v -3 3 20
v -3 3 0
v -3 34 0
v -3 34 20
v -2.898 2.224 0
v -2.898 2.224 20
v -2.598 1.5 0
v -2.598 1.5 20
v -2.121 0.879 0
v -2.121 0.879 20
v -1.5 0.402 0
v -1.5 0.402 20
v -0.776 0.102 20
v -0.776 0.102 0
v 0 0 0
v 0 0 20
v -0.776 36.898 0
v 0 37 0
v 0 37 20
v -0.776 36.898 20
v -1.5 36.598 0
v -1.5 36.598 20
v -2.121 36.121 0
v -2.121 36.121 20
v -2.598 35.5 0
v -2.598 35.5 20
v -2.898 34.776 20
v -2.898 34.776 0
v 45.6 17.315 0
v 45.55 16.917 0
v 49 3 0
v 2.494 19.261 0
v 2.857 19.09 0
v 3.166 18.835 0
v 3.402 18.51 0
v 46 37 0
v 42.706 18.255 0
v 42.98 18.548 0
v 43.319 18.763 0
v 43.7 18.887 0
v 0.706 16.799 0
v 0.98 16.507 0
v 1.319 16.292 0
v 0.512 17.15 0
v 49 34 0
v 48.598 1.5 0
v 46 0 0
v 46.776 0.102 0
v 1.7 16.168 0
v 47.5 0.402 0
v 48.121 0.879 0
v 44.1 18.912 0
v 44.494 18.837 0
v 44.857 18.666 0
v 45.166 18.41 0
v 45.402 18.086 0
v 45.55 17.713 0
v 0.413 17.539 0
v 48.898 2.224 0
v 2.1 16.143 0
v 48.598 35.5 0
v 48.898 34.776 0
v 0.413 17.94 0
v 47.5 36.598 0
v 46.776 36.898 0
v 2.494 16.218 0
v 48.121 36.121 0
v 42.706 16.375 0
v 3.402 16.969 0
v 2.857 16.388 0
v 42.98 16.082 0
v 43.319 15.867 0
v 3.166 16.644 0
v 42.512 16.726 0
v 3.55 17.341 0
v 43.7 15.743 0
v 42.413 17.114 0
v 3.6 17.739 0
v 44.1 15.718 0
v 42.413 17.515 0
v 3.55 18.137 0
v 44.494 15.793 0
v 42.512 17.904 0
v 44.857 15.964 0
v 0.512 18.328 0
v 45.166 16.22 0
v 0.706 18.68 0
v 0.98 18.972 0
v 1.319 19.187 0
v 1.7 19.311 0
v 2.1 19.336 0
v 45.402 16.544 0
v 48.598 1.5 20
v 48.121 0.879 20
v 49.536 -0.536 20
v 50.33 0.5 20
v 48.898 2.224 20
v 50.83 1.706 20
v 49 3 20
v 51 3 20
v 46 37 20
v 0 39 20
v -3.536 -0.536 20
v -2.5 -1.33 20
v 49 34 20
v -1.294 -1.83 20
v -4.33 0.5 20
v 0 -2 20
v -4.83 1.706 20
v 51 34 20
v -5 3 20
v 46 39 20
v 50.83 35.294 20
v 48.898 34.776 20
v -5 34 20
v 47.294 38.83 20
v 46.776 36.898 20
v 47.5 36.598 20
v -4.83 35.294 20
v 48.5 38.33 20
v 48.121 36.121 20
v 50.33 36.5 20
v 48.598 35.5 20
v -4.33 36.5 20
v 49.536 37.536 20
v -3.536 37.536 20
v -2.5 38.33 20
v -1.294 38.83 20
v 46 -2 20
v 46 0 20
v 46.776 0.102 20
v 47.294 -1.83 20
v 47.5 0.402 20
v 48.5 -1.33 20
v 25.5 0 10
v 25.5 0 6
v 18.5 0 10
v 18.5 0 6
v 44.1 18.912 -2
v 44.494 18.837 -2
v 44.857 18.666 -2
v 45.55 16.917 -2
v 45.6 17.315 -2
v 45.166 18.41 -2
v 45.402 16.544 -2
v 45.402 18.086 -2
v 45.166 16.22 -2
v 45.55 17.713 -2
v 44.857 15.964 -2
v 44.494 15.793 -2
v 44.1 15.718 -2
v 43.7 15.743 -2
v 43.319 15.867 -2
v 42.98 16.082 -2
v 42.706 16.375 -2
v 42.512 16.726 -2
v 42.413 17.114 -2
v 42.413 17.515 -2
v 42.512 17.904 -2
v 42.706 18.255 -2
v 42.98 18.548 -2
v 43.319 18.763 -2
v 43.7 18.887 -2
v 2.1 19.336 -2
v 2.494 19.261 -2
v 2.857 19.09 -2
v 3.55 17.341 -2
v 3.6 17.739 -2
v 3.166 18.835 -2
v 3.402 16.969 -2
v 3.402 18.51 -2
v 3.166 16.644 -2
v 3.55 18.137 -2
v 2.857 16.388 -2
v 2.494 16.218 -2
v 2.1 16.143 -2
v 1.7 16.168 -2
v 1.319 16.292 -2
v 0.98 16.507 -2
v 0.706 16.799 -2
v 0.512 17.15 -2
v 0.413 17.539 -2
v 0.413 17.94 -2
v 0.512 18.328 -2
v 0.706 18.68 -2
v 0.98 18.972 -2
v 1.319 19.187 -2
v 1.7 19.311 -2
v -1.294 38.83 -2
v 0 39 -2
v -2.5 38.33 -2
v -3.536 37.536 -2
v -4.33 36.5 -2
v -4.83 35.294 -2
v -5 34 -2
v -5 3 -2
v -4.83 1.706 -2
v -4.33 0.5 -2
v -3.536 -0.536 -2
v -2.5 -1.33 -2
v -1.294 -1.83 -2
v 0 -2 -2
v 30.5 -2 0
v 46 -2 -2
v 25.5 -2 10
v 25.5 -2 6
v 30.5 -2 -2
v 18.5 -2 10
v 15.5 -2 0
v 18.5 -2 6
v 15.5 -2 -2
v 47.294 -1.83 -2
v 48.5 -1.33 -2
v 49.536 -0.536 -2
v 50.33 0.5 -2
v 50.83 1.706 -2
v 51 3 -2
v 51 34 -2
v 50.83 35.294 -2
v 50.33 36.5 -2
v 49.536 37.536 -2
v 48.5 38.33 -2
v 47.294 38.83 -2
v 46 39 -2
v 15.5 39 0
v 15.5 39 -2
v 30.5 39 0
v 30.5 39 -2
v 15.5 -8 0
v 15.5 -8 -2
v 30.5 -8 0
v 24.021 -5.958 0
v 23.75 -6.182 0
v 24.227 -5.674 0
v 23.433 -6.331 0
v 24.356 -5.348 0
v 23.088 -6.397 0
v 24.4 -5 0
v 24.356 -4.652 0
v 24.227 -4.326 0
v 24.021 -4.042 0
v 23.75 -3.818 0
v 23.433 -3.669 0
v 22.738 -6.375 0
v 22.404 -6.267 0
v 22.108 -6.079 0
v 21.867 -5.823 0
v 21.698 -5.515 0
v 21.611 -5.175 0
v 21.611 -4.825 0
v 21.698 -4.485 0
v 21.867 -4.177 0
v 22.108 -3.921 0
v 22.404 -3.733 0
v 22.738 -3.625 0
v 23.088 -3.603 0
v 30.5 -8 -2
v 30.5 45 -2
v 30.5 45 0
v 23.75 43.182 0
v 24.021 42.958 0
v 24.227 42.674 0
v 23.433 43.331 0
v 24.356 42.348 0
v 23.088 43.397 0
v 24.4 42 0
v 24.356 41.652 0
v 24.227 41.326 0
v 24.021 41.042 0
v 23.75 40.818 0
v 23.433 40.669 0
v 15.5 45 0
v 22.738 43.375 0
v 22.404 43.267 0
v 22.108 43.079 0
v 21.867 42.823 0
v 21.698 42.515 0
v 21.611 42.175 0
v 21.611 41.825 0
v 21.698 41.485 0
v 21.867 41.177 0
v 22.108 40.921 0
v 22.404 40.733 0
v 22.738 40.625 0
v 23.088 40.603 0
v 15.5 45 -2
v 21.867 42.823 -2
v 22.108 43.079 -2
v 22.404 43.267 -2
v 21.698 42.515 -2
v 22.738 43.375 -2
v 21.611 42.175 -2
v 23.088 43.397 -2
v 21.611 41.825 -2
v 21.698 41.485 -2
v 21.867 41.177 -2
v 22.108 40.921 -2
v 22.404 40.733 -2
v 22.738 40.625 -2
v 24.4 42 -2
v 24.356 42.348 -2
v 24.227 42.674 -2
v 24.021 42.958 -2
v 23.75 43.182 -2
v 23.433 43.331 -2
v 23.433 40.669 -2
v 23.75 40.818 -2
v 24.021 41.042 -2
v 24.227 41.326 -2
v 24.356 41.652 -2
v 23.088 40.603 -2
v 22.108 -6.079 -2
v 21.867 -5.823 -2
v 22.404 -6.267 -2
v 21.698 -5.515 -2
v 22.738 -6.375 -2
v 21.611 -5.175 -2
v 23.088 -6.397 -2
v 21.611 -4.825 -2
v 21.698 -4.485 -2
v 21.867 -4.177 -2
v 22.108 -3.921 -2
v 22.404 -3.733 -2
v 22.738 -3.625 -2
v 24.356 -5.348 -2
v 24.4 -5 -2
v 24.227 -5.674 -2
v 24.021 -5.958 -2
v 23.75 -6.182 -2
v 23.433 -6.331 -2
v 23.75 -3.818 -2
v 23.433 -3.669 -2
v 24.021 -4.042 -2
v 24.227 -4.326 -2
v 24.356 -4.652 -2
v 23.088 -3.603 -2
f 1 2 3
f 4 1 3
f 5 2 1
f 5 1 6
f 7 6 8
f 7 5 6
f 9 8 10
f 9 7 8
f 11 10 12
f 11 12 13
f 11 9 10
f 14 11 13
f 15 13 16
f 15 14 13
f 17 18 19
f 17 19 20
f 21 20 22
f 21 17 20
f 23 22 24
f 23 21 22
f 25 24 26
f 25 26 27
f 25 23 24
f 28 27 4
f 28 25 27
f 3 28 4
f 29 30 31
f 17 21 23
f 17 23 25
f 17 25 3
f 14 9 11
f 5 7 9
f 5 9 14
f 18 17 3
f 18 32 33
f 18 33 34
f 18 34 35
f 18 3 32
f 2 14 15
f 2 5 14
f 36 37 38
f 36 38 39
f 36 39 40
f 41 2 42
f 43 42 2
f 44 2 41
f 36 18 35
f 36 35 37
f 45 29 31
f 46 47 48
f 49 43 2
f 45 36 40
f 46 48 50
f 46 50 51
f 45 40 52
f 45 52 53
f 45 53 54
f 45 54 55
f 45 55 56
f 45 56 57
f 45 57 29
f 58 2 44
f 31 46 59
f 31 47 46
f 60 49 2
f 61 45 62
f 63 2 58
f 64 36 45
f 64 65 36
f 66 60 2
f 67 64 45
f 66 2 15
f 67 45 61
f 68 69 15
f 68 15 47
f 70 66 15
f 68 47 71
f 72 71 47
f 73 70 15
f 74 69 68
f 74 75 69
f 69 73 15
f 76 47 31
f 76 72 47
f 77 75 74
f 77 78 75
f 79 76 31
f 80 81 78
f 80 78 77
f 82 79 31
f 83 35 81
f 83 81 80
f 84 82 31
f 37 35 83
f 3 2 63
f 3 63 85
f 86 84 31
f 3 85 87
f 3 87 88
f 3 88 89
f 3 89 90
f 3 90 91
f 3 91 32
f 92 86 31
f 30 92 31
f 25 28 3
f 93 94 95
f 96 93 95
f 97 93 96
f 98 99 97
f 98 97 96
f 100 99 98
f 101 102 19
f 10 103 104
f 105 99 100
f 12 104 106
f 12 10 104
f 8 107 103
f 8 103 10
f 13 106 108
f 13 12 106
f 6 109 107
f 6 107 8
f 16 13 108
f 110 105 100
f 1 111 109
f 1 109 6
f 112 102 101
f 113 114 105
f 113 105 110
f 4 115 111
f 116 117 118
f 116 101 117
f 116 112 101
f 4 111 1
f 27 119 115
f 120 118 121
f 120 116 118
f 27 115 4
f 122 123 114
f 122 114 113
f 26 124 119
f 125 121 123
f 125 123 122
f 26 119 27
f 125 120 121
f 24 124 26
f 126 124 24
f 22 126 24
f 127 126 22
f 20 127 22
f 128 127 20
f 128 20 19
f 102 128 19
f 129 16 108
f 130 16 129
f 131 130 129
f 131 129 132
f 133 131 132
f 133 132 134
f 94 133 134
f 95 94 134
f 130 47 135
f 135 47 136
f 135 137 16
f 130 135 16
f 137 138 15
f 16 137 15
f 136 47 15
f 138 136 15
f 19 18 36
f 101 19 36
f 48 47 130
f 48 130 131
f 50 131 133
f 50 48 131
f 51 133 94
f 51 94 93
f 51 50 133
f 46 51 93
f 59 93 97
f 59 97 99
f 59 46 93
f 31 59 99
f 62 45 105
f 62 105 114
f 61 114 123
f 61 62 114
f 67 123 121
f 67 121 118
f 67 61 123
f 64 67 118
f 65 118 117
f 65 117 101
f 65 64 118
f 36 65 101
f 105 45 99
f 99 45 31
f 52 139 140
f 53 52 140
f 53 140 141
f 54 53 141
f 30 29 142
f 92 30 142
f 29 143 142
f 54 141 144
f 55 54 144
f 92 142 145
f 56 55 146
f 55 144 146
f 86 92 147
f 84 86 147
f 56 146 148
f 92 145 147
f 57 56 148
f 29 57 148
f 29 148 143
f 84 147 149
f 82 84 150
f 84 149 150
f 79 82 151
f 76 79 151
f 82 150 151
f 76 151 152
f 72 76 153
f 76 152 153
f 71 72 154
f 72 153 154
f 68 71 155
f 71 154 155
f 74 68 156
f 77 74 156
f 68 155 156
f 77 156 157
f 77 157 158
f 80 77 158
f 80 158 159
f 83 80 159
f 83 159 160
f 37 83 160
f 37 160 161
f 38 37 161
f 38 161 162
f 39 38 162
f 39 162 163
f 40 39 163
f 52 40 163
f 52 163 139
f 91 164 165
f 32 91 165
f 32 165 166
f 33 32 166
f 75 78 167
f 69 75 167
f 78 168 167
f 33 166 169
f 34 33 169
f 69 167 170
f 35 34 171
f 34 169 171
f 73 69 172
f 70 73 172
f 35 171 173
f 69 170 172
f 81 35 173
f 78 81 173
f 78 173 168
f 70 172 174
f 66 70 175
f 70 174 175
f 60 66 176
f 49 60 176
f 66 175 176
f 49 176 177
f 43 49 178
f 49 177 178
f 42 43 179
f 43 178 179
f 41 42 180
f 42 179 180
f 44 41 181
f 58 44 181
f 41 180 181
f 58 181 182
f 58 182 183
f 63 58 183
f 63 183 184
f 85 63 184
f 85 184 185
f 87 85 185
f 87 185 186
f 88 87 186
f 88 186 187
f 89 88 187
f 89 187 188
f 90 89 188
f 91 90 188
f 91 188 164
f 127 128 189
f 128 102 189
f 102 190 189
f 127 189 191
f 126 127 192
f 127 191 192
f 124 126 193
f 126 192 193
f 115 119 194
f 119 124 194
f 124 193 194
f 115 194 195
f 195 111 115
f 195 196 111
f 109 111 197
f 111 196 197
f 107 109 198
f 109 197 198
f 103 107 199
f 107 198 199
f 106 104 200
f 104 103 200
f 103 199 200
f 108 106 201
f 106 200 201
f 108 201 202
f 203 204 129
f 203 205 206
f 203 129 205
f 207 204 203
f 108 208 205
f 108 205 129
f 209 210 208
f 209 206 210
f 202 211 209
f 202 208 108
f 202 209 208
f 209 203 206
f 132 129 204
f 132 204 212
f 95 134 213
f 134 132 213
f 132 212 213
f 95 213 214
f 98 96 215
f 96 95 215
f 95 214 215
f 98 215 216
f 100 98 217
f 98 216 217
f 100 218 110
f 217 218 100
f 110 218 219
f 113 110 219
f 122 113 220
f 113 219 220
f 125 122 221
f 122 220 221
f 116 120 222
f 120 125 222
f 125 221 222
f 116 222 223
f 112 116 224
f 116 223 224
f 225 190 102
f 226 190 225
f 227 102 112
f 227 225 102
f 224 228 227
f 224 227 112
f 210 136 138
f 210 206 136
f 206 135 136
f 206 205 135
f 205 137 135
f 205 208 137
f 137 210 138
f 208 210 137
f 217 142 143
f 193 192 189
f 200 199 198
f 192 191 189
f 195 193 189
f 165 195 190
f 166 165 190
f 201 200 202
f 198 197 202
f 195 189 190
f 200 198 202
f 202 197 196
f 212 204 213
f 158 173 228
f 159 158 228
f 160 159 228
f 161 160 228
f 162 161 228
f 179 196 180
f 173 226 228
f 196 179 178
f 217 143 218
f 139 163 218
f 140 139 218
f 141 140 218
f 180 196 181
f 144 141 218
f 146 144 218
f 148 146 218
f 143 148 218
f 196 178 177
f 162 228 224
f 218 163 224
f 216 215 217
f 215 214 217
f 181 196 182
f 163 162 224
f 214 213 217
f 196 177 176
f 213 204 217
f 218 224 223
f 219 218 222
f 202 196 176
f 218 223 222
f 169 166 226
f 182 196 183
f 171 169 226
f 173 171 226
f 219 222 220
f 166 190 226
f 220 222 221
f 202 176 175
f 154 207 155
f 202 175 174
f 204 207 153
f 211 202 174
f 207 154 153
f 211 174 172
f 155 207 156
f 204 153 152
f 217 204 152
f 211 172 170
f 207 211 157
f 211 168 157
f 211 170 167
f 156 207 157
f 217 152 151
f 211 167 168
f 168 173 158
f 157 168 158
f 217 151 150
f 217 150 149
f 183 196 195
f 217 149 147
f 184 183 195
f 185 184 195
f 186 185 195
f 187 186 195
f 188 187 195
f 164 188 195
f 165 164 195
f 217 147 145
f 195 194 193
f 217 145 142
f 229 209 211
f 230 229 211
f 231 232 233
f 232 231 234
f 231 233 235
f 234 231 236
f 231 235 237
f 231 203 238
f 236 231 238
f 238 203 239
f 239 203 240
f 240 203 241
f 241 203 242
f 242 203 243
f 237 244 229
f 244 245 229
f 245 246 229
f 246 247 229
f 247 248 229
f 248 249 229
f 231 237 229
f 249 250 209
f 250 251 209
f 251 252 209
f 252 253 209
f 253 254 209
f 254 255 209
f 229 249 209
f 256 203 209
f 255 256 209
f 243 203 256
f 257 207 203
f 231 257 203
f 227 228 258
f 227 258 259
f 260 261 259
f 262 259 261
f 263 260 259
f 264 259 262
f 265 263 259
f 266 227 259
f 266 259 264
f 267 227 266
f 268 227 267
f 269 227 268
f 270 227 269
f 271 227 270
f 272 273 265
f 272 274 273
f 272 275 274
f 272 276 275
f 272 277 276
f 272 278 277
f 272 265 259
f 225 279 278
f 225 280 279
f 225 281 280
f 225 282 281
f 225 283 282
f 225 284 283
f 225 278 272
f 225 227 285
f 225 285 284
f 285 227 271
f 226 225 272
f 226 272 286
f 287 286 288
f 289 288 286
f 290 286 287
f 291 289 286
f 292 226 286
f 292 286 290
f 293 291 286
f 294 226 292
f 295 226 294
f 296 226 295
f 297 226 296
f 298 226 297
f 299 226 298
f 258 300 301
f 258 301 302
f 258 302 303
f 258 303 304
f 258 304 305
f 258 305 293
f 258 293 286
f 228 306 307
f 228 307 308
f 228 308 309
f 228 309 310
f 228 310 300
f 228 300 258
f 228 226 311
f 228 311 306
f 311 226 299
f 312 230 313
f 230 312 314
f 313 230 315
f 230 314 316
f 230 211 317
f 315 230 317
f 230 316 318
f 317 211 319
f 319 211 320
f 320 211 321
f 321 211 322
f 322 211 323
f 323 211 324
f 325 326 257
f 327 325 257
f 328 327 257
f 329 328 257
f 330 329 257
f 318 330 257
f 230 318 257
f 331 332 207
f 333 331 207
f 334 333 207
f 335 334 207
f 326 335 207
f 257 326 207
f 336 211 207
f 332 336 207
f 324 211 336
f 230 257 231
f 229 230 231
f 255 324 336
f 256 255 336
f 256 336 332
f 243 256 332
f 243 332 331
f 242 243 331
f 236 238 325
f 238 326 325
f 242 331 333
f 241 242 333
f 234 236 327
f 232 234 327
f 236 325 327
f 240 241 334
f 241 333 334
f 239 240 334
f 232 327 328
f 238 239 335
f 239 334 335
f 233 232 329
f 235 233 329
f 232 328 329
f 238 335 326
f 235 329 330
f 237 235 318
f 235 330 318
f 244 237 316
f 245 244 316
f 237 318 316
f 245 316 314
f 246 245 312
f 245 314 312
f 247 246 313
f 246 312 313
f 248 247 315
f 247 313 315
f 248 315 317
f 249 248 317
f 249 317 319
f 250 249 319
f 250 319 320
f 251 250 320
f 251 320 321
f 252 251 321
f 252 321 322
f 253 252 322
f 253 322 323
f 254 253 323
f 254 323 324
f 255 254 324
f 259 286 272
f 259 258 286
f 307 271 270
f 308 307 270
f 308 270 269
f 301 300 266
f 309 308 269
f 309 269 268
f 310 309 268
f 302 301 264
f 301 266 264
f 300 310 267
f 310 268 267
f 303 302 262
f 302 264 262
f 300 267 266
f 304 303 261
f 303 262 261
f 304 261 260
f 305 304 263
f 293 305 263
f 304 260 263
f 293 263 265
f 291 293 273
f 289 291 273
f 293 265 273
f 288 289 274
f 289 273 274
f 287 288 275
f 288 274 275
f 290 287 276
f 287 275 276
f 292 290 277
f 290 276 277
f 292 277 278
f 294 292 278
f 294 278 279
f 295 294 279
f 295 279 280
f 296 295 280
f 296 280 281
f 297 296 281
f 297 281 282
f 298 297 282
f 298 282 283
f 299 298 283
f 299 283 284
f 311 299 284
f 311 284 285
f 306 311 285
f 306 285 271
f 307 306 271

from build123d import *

# Parameters (mm, degrees)
PAD_DEPTH       = 20
THICKNESS_T     = 2
SKETCH001_W     = 15
SKETCH001_H     = 2
PAD001_DEPTH    = 6
SKETCH002_R     = 1.4
POCKET_DEPTH    = 2.001
SKETCH003_W     = 15
SKETCH003_H     = 2
PAD002_DEPTH    = 6
SKETCH004_R     = 1.4
POCKET001_DEPTH = 22.001
SKETCH005_R     = 1.6
POCKET002_DEPTH = 22.001
SKETCH006_W     = 7
SKETCH006_H     = 4
POCKET003_DEPTH = 2


with BuildPart() as part:
    # Sketch → Pad (new body)
    with BuildSketch(Plane.XY):
        with BuildLine():
            Line((0, 37), (46, 37))
            ThreePointArc((49, 34), (48.1213203436, 36.1213203436), (46, 37))
            Line((49, 34), (49, 3))
            ThreePointArc((46, 0), (48.1213203436, 0.8786796564), (49, 3))
            Line((46, 0), (0, 0))
            ThreePointArc((-3, 3), (-2.1213203436, 0.8786796564), (0, 0))
            Line((-3, 3), (-3, 34))
            ThreePointArc((0, 37), (-2.1213203436, 36.1213203436), (-3, 34))
        make_face()
    extrude(amount=PAD_DEPTH)

    # Thickness
    thickness_openings = [part.faces().sort_by_distance(p)[0] for p in [
        (23, 18.5, 20),
    ]]
    offset(amount=THICKNESS_T, openings=thickness_openings, kind=Kind.INTERSECTION)

    # Sketch001 → Pad001 (new body)
    with BuildSketch(Plane(origin=(0, 39, 0), x_dir=(-1, 0, 0), z_dir=(0, 1, 0))):
        with Locations((-23, -1)):
            Rectangle(SKETCH001_W, SKETCH001_H)
    extrude(amount=PAD001_DEPTH)

    # Sketch002 → Pocket (cut, through all)
    with BuildSketch(Plane.XY):
        with Locations((23, 42)):
            Circle(SKETCH002_R)
    extrude(amount=-POCKET_DEPTH, mode=Mode.SUBTRACT)

    # Sketch003 → Pad002 (new body)
    with BuildSketch(Plane.XZ.offset(2)):
        with Locations((23, -1)):
            Rectangle(SKETCH003_W, SKETCH003_H)
    extrude(amount=PAD002_DEPTH)

    # Sketch004 → Pocket001 (cut, through all)
    with BuildSketch(Plane(origin=(0, 0, -2), x_dir=(1, 0, 0), z_dir=(0, 0, -1))):
        with Locations((23, 5)):
            Circle(SKETCH004_R)
    extrude(amount=-POCKET001_DEPTH, mode=Mode.SUBTRACT)

    # Sketch005 → Pocket002 (cut, through all)
    with BuildSketch(Plane(origin=(0, 0, -2), x_dir=(1, 0, 0), z_dir=(0, 0, -1))):
        with Locations((2, -17.739397)):
            Circle(SKETCH005_R)
        with Locations((44, -17.314964)):
            Circle(SKETCH005_R)
    extrude(amount=-POCKET002_DEPTH, mode=Mode.SUBTRACT)

    # Sketch006 → Pocket003 (cut)
    with BuildSketch(Plane.XZ.offset(2)):
        with Locations((22, 8)):
            Rectangle(SKETCH006_W, SKETCH006_H)
    extrude(amount=-POCKET003_DEPTH, mode=Mode.SUBTRACT)


solid = part.part
